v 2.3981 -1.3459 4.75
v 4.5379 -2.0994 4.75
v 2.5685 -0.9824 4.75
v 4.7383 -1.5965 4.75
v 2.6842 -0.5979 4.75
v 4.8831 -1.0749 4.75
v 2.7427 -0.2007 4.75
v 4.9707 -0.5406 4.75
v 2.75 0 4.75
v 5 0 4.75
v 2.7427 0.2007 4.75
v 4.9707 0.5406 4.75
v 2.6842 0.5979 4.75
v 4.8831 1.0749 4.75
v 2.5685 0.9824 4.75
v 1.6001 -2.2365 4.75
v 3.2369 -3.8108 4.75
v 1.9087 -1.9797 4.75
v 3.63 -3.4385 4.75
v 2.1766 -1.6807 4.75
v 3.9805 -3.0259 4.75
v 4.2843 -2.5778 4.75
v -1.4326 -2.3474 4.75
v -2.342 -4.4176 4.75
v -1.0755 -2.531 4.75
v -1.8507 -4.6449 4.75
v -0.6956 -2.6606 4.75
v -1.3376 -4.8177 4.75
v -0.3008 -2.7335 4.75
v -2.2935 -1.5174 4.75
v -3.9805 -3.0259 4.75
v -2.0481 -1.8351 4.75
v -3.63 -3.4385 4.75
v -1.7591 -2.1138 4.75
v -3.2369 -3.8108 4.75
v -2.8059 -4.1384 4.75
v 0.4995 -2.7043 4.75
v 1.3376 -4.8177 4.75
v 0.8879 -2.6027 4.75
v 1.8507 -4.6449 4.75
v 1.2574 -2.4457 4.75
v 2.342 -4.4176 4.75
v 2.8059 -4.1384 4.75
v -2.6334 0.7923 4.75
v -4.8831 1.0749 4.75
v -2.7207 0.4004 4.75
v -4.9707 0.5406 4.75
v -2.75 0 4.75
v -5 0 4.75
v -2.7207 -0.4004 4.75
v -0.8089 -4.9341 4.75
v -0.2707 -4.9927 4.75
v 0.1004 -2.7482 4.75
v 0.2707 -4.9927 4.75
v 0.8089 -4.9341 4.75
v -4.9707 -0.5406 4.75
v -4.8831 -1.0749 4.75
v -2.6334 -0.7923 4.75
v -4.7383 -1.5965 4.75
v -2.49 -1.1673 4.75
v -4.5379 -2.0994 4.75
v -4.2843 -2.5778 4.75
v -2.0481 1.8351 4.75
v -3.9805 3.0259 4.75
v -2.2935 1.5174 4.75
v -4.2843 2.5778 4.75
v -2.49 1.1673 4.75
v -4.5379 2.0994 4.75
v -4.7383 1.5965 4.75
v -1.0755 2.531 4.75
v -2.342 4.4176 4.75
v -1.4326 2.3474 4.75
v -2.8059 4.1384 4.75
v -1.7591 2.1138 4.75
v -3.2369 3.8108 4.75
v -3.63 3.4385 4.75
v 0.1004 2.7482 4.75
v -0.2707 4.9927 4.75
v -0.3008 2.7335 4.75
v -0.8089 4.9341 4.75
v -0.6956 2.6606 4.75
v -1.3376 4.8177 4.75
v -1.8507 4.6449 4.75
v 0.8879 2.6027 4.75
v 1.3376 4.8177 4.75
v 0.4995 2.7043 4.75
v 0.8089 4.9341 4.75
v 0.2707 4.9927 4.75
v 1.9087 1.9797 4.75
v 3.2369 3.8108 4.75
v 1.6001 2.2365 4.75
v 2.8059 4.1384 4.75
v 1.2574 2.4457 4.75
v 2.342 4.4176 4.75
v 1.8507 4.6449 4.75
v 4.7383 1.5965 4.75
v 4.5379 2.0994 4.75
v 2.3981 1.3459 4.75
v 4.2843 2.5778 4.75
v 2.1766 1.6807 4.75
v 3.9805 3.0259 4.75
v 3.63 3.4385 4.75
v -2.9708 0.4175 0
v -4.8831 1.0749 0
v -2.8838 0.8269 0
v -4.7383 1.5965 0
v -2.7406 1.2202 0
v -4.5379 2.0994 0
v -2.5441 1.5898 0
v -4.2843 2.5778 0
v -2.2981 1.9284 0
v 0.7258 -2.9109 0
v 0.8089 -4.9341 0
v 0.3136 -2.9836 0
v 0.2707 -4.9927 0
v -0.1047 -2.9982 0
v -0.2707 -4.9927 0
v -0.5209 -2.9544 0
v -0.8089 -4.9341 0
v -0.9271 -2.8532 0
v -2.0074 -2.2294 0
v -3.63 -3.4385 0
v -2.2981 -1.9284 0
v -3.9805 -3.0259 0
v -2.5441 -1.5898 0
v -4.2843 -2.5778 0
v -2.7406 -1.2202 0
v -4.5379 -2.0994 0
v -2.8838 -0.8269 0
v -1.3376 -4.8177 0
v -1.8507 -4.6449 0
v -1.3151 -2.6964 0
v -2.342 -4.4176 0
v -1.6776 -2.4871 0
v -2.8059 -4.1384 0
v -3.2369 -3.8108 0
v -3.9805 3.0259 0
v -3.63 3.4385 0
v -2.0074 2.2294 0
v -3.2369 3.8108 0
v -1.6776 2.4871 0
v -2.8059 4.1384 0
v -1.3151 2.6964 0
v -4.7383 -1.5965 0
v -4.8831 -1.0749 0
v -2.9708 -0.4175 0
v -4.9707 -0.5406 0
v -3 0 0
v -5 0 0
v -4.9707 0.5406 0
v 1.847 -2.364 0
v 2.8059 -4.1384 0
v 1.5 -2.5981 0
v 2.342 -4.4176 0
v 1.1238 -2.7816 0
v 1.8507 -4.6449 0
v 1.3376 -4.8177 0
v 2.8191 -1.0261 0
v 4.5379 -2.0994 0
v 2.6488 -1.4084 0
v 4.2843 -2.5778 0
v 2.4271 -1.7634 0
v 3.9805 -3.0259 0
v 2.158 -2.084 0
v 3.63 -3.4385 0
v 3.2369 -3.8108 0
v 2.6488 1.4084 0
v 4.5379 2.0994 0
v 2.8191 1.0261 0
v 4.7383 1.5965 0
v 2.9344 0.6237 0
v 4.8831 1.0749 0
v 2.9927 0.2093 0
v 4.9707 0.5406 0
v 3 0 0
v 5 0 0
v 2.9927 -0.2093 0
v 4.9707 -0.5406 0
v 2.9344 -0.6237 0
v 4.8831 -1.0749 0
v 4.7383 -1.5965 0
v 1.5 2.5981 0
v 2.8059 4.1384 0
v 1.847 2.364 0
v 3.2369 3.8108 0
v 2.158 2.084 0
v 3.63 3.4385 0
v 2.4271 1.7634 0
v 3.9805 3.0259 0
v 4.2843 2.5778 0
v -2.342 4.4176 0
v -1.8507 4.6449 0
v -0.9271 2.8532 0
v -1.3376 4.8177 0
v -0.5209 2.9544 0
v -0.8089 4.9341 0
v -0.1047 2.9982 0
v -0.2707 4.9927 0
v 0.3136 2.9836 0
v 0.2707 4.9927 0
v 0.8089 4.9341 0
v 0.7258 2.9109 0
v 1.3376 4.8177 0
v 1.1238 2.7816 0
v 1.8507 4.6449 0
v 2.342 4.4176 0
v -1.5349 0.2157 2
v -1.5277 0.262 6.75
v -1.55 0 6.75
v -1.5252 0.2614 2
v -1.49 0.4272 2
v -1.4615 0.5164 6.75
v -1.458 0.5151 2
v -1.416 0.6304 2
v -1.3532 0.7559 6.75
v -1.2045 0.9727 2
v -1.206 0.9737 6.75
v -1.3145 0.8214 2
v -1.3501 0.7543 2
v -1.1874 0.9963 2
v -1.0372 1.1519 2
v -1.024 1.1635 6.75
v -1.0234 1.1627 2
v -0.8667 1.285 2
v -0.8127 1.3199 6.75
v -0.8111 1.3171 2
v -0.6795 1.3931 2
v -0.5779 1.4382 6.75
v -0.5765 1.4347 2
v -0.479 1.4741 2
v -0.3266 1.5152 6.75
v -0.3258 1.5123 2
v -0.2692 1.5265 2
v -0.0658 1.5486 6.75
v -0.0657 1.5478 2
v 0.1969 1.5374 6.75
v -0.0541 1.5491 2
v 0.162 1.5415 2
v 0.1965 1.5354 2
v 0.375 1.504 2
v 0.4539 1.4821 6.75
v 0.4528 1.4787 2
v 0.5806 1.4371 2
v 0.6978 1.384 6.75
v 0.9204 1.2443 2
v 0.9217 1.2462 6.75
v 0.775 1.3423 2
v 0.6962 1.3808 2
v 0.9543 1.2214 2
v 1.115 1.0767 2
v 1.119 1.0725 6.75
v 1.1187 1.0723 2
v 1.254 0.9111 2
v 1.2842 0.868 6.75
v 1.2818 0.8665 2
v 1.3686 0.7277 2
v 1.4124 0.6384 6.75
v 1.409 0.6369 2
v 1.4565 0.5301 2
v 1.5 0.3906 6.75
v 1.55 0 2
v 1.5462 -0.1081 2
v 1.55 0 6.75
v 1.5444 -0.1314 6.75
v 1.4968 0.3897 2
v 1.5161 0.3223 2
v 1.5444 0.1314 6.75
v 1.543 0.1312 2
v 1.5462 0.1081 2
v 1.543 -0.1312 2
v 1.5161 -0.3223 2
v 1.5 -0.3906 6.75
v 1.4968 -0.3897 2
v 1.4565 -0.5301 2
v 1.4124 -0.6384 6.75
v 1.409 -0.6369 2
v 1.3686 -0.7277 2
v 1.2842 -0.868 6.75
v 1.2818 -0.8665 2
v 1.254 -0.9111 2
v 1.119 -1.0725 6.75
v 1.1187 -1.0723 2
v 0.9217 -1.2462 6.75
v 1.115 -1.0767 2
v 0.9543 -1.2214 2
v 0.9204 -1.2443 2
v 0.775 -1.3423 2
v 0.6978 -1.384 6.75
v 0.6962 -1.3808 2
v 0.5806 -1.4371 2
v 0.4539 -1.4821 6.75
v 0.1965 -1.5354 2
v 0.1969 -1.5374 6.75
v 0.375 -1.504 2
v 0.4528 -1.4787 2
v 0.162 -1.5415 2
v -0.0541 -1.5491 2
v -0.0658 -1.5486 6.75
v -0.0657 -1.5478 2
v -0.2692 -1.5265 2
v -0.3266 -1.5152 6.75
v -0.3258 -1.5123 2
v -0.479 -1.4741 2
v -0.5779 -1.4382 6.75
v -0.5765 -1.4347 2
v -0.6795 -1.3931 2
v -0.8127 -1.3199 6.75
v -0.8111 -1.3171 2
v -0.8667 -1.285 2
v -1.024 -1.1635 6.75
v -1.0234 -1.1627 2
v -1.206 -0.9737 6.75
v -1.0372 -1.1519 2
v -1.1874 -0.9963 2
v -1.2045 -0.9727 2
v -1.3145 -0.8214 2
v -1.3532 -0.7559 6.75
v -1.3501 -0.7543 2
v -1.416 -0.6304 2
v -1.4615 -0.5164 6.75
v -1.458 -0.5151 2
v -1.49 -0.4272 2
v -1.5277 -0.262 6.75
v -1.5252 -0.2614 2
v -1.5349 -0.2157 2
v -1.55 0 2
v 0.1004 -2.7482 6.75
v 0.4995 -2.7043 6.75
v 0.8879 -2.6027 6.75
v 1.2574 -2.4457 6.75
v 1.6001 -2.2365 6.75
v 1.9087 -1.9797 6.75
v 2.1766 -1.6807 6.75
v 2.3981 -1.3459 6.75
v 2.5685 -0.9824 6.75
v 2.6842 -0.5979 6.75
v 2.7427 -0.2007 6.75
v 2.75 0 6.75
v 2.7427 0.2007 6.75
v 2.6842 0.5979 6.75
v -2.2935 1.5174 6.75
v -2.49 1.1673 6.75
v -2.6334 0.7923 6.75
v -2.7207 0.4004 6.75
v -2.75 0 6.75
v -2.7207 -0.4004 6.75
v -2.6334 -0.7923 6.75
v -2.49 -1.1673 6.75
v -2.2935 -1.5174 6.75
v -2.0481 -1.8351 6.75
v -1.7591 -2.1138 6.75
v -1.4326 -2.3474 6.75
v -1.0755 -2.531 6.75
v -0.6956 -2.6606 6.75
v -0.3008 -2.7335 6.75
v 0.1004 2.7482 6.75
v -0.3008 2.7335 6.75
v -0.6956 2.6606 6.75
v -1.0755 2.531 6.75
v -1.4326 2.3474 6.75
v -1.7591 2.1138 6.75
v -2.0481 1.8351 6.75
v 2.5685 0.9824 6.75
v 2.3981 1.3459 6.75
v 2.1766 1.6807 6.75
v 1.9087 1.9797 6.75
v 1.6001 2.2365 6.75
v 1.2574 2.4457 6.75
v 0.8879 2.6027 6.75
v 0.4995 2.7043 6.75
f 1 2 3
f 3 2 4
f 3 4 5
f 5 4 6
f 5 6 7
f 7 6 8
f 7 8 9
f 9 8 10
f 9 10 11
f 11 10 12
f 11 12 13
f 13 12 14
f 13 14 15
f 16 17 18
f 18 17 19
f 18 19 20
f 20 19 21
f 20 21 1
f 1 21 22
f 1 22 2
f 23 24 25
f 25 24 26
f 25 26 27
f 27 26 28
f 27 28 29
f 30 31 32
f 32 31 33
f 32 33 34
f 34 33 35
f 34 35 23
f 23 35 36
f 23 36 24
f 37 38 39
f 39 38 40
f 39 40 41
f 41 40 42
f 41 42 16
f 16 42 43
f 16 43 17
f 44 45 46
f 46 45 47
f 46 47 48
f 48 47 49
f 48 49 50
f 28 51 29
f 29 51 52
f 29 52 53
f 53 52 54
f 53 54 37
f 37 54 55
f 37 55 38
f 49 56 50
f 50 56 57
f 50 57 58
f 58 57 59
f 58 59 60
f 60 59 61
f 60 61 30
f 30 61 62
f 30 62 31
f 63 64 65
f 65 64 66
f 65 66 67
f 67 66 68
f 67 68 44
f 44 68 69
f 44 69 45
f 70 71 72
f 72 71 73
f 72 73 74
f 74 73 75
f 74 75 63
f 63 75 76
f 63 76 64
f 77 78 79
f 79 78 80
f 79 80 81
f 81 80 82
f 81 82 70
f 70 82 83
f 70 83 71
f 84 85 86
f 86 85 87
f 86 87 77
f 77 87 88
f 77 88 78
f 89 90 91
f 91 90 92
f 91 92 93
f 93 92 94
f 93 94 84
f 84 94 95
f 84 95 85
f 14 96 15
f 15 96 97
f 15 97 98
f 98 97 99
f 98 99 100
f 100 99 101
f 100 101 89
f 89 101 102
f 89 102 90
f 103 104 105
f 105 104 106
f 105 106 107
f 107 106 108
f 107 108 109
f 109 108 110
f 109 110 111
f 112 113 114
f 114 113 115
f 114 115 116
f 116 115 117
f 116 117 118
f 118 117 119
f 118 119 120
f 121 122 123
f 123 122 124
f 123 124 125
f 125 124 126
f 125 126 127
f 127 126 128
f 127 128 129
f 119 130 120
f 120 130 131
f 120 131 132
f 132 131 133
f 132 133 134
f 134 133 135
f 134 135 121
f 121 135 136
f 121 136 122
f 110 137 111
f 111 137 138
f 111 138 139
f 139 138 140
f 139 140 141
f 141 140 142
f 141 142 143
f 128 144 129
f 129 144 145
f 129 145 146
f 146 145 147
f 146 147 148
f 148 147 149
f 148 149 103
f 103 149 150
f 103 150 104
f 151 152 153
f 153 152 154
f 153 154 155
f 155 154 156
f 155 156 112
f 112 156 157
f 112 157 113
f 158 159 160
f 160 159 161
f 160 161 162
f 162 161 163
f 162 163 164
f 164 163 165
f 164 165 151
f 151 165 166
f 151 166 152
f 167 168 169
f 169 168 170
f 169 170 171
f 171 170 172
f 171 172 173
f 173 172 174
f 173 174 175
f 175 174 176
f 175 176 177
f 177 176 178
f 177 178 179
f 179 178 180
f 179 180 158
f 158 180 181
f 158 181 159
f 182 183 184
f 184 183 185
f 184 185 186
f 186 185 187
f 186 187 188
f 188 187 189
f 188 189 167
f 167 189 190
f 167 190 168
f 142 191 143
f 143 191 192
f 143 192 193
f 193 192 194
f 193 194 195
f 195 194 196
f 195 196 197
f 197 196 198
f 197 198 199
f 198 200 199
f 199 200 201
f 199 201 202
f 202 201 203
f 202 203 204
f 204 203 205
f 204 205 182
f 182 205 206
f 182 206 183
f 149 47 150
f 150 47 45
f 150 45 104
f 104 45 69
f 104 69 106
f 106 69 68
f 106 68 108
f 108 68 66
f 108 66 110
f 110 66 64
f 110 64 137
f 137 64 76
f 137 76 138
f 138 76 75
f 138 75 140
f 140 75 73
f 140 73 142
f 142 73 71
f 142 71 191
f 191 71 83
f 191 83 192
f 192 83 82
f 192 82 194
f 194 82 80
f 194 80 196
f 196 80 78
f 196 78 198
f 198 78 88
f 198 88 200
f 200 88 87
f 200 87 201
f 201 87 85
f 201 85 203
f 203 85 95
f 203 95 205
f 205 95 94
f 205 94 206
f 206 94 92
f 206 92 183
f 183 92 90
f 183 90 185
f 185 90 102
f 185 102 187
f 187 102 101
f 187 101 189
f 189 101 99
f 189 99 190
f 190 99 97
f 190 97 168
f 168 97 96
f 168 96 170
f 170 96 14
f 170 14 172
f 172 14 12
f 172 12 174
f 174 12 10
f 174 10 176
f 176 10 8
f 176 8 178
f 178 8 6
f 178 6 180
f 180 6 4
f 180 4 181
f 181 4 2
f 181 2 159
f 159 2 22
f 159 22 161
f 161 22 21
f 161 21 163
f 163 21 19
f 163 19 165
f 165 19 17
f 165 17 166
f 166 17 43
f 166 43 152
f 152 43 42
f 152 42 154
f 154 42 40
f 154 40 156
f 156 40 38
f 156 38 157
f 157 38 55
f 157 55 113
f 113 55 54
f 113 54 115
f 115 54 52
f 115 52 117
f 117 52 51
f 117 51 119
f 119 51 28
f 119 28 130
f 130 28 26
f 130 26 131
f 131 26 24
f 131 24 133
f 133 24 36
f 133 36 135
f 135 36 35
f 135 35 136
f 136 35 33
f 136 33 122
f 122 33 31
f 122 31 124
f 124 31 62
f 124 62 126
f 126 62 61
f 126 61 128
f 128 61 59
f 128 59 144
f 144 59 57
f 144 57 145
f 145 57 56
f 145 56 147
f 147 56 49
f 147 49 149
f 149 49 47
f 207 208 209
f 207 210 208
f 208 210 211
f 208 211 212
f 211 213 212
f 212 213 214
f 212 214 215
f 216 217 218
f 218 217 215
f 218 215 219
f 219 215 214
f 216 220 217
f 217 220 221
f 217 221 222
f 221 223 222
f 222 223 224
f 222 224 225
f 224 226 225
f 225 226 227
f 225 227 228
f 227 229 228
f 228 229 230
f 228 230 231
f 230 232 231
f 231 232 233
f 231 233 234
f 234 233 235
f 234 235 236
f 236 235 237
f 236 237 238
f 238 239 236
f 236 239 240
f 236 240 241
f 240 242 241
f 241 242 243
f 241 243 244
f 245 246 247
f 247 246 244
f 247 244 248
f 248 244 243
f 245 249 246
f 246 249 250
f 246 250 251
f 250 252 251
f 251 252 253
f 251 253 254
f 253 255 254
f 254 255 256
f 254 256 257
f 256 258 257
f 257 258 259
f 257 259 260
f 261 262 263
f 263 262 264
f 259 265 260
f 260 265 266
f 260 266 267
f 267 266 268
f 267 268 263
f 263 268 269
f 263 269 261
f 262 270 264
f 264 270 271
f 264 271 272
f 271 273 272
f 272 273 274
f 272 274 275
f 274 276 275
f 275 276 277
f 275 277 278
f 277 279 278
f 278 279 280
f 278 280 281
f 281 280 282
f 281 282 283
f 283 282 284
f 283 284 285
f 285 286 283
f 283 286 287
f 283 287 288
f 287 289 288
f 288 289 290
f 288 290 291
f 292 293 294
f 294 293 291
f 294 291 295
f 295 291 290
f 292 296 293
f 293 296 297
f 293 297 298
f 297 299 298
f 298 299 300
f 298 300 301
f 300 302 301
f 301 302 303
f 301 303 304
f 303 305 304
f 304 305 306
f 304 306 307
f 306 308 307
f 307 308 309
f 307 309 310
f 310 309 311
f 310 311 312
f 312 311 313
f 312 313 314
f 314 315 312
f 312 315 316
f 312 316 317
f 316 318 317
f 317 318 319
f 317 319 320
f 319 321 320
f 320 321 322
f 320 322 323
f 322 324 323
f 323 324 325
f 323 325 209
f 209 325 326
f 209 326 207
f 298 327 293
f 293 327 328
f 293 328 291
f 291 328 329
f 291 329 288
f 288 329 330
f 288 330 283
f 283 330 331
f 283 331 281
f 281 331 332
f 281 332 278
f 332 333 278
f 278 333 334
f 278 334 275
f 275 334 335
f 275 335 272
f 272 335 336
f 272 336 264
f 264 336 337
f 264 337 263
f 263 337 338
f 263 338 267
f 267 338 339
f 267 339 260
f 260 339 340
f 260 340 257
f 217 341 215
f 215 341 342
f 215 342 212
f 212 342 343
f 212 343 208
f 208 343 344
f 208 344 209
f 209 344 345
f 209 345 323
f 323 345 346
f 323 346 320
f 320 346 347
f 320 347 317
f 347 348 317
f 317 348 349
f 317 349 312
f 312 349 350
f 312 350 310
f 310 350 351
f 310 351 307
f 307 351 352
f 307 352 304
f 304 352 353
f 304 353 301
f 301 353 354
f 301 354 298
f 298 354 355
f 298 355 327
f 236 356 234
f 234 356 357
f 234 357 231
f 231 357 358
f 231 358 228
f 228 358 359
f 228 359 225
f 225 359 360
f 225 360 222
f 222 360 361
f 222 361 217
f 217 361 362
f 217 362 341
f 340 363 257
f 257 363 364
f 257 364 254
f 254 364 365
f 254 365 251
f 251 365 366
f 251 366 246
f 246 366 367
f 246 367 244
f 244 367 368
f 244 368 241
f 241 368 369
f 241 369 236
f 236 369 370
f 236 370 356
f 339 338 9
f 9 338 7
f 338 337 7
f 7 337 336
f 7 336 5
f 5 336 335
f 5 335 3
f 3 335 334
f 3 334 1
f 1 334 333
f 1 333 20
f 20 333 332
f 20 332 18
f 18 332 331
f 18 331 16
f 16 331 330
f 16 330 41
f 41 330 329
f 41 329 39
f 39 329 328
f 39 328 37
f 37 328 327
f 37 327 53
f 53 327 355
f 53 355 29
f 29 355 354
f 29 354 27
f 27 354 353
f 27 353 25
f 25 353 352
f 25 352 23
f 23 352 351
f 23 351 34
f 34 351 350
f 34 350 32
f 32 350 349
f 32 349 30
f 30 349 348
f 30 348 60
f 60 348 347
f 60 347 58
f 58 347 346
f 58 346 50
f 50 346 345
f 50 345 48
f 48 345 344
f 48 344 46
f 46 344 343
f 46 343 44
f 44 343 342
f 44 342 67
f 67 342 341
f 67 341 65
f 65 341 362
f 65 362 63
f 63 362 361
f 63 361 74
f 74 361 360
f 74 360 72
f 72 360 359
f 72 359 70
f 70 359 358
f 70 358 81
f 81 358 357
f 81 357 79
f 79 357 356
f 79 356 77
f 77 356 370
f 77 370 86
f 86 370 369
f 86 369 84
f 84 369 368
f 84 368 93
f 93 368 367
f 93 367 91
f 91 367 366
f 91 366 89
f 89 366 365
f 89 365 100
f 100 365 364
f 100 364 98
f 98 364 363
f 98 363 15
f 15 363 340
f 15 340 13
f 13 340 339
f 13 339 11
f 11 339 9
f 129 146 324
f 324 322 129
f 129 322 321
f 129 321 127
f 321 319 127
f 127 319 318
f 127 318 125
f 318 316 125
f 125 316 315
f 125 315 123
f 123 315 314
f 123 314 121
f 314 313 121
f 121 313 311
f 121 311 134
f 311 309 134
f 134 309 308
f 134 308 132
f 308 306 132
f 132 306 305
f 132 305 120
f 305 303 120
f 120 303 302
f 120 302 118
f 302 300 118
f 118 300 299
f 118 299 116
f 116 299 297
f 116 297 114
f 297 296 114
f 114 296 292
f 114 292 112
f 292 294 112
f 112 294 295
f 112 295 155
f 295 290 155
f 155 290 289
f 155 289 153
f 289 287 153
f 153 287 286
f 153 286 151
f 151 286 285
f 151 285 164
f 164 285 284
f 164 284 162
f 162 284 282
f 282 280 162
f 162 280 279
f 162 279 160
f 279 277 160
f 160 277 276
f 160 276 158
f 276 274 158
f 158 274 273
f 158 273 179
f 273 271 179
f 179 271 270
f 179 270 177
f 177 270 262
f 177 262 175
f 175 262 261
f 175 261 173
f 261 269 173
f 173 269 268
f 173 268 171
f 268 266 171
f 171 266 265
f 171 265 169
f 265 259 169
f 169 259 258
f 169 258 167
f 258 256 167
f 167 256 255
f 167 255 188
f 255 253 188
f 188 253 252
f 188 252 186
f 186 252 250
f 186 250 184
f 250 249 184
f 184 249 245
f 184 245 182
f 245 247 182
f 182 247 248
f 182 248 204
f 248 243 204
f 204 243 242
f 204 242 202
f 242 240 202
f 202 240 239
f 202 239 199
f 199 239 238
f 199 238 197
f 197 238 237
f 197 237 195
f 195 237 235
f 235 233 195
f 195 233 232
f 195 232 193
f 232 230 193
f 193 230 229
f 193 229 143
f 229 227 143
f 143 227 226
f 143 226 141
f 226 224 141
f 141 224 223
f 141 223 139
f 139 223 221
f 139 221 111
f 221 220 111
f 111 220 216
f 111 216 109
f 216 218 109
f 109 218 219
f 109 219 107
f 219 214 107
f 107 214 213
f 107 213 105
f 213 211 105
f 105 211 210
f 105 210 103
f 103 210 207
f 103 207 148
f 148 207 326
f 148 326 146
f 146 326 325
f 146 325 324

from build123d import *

# Parameters (mm, degrees)
SKETCH_1_R      = 5
SKETCH_1_R_2    = 1.55
EXTRUDE_1_DEPTH = 4.75
SKETCH_2_R      = 2.75
SKETCH_2_R_2    = 1.55
EXTRUDE_2_DEPTH = 2


with BuildPart() as part:
    # 草图1 → 凸台-拉伸1 (new body)
    with BuildSketch(Plane.XY):
        Circle(SKETCH_1_R)
        Circle(SKETCH_1_R_2, mode=Mode.SUBTRACT)
    extrude(amount=EXTRUDE_1_DEPTH)

    # 草图2 → 凸台-拉伸2 (add)
    with BuildSketch(Plane.XY.offset(4.75)):
        Circle(SKETCH_2_R)
        Circle(SKETCH_2_R_2, mode=Mode.SUBTRACT)
    extrude(amount=EXTRUDE_2_DEPTH)

    # 草图5 → 切除-旋转1 (revolve, cut)
    with BuildSketch(Plane(origin=(0, 0, 0), x_dir=(1, 0, 0), z_dir=(0, 1, 0))):
        Polygon((3, 0), (1.55, -2), (0, -2), (0, 0), align=None)
    revolve(axis=Axis((0, 0, 4.75), (0, 0, -1)), mode=Mode.SUBTRACT)


solid = part.part
